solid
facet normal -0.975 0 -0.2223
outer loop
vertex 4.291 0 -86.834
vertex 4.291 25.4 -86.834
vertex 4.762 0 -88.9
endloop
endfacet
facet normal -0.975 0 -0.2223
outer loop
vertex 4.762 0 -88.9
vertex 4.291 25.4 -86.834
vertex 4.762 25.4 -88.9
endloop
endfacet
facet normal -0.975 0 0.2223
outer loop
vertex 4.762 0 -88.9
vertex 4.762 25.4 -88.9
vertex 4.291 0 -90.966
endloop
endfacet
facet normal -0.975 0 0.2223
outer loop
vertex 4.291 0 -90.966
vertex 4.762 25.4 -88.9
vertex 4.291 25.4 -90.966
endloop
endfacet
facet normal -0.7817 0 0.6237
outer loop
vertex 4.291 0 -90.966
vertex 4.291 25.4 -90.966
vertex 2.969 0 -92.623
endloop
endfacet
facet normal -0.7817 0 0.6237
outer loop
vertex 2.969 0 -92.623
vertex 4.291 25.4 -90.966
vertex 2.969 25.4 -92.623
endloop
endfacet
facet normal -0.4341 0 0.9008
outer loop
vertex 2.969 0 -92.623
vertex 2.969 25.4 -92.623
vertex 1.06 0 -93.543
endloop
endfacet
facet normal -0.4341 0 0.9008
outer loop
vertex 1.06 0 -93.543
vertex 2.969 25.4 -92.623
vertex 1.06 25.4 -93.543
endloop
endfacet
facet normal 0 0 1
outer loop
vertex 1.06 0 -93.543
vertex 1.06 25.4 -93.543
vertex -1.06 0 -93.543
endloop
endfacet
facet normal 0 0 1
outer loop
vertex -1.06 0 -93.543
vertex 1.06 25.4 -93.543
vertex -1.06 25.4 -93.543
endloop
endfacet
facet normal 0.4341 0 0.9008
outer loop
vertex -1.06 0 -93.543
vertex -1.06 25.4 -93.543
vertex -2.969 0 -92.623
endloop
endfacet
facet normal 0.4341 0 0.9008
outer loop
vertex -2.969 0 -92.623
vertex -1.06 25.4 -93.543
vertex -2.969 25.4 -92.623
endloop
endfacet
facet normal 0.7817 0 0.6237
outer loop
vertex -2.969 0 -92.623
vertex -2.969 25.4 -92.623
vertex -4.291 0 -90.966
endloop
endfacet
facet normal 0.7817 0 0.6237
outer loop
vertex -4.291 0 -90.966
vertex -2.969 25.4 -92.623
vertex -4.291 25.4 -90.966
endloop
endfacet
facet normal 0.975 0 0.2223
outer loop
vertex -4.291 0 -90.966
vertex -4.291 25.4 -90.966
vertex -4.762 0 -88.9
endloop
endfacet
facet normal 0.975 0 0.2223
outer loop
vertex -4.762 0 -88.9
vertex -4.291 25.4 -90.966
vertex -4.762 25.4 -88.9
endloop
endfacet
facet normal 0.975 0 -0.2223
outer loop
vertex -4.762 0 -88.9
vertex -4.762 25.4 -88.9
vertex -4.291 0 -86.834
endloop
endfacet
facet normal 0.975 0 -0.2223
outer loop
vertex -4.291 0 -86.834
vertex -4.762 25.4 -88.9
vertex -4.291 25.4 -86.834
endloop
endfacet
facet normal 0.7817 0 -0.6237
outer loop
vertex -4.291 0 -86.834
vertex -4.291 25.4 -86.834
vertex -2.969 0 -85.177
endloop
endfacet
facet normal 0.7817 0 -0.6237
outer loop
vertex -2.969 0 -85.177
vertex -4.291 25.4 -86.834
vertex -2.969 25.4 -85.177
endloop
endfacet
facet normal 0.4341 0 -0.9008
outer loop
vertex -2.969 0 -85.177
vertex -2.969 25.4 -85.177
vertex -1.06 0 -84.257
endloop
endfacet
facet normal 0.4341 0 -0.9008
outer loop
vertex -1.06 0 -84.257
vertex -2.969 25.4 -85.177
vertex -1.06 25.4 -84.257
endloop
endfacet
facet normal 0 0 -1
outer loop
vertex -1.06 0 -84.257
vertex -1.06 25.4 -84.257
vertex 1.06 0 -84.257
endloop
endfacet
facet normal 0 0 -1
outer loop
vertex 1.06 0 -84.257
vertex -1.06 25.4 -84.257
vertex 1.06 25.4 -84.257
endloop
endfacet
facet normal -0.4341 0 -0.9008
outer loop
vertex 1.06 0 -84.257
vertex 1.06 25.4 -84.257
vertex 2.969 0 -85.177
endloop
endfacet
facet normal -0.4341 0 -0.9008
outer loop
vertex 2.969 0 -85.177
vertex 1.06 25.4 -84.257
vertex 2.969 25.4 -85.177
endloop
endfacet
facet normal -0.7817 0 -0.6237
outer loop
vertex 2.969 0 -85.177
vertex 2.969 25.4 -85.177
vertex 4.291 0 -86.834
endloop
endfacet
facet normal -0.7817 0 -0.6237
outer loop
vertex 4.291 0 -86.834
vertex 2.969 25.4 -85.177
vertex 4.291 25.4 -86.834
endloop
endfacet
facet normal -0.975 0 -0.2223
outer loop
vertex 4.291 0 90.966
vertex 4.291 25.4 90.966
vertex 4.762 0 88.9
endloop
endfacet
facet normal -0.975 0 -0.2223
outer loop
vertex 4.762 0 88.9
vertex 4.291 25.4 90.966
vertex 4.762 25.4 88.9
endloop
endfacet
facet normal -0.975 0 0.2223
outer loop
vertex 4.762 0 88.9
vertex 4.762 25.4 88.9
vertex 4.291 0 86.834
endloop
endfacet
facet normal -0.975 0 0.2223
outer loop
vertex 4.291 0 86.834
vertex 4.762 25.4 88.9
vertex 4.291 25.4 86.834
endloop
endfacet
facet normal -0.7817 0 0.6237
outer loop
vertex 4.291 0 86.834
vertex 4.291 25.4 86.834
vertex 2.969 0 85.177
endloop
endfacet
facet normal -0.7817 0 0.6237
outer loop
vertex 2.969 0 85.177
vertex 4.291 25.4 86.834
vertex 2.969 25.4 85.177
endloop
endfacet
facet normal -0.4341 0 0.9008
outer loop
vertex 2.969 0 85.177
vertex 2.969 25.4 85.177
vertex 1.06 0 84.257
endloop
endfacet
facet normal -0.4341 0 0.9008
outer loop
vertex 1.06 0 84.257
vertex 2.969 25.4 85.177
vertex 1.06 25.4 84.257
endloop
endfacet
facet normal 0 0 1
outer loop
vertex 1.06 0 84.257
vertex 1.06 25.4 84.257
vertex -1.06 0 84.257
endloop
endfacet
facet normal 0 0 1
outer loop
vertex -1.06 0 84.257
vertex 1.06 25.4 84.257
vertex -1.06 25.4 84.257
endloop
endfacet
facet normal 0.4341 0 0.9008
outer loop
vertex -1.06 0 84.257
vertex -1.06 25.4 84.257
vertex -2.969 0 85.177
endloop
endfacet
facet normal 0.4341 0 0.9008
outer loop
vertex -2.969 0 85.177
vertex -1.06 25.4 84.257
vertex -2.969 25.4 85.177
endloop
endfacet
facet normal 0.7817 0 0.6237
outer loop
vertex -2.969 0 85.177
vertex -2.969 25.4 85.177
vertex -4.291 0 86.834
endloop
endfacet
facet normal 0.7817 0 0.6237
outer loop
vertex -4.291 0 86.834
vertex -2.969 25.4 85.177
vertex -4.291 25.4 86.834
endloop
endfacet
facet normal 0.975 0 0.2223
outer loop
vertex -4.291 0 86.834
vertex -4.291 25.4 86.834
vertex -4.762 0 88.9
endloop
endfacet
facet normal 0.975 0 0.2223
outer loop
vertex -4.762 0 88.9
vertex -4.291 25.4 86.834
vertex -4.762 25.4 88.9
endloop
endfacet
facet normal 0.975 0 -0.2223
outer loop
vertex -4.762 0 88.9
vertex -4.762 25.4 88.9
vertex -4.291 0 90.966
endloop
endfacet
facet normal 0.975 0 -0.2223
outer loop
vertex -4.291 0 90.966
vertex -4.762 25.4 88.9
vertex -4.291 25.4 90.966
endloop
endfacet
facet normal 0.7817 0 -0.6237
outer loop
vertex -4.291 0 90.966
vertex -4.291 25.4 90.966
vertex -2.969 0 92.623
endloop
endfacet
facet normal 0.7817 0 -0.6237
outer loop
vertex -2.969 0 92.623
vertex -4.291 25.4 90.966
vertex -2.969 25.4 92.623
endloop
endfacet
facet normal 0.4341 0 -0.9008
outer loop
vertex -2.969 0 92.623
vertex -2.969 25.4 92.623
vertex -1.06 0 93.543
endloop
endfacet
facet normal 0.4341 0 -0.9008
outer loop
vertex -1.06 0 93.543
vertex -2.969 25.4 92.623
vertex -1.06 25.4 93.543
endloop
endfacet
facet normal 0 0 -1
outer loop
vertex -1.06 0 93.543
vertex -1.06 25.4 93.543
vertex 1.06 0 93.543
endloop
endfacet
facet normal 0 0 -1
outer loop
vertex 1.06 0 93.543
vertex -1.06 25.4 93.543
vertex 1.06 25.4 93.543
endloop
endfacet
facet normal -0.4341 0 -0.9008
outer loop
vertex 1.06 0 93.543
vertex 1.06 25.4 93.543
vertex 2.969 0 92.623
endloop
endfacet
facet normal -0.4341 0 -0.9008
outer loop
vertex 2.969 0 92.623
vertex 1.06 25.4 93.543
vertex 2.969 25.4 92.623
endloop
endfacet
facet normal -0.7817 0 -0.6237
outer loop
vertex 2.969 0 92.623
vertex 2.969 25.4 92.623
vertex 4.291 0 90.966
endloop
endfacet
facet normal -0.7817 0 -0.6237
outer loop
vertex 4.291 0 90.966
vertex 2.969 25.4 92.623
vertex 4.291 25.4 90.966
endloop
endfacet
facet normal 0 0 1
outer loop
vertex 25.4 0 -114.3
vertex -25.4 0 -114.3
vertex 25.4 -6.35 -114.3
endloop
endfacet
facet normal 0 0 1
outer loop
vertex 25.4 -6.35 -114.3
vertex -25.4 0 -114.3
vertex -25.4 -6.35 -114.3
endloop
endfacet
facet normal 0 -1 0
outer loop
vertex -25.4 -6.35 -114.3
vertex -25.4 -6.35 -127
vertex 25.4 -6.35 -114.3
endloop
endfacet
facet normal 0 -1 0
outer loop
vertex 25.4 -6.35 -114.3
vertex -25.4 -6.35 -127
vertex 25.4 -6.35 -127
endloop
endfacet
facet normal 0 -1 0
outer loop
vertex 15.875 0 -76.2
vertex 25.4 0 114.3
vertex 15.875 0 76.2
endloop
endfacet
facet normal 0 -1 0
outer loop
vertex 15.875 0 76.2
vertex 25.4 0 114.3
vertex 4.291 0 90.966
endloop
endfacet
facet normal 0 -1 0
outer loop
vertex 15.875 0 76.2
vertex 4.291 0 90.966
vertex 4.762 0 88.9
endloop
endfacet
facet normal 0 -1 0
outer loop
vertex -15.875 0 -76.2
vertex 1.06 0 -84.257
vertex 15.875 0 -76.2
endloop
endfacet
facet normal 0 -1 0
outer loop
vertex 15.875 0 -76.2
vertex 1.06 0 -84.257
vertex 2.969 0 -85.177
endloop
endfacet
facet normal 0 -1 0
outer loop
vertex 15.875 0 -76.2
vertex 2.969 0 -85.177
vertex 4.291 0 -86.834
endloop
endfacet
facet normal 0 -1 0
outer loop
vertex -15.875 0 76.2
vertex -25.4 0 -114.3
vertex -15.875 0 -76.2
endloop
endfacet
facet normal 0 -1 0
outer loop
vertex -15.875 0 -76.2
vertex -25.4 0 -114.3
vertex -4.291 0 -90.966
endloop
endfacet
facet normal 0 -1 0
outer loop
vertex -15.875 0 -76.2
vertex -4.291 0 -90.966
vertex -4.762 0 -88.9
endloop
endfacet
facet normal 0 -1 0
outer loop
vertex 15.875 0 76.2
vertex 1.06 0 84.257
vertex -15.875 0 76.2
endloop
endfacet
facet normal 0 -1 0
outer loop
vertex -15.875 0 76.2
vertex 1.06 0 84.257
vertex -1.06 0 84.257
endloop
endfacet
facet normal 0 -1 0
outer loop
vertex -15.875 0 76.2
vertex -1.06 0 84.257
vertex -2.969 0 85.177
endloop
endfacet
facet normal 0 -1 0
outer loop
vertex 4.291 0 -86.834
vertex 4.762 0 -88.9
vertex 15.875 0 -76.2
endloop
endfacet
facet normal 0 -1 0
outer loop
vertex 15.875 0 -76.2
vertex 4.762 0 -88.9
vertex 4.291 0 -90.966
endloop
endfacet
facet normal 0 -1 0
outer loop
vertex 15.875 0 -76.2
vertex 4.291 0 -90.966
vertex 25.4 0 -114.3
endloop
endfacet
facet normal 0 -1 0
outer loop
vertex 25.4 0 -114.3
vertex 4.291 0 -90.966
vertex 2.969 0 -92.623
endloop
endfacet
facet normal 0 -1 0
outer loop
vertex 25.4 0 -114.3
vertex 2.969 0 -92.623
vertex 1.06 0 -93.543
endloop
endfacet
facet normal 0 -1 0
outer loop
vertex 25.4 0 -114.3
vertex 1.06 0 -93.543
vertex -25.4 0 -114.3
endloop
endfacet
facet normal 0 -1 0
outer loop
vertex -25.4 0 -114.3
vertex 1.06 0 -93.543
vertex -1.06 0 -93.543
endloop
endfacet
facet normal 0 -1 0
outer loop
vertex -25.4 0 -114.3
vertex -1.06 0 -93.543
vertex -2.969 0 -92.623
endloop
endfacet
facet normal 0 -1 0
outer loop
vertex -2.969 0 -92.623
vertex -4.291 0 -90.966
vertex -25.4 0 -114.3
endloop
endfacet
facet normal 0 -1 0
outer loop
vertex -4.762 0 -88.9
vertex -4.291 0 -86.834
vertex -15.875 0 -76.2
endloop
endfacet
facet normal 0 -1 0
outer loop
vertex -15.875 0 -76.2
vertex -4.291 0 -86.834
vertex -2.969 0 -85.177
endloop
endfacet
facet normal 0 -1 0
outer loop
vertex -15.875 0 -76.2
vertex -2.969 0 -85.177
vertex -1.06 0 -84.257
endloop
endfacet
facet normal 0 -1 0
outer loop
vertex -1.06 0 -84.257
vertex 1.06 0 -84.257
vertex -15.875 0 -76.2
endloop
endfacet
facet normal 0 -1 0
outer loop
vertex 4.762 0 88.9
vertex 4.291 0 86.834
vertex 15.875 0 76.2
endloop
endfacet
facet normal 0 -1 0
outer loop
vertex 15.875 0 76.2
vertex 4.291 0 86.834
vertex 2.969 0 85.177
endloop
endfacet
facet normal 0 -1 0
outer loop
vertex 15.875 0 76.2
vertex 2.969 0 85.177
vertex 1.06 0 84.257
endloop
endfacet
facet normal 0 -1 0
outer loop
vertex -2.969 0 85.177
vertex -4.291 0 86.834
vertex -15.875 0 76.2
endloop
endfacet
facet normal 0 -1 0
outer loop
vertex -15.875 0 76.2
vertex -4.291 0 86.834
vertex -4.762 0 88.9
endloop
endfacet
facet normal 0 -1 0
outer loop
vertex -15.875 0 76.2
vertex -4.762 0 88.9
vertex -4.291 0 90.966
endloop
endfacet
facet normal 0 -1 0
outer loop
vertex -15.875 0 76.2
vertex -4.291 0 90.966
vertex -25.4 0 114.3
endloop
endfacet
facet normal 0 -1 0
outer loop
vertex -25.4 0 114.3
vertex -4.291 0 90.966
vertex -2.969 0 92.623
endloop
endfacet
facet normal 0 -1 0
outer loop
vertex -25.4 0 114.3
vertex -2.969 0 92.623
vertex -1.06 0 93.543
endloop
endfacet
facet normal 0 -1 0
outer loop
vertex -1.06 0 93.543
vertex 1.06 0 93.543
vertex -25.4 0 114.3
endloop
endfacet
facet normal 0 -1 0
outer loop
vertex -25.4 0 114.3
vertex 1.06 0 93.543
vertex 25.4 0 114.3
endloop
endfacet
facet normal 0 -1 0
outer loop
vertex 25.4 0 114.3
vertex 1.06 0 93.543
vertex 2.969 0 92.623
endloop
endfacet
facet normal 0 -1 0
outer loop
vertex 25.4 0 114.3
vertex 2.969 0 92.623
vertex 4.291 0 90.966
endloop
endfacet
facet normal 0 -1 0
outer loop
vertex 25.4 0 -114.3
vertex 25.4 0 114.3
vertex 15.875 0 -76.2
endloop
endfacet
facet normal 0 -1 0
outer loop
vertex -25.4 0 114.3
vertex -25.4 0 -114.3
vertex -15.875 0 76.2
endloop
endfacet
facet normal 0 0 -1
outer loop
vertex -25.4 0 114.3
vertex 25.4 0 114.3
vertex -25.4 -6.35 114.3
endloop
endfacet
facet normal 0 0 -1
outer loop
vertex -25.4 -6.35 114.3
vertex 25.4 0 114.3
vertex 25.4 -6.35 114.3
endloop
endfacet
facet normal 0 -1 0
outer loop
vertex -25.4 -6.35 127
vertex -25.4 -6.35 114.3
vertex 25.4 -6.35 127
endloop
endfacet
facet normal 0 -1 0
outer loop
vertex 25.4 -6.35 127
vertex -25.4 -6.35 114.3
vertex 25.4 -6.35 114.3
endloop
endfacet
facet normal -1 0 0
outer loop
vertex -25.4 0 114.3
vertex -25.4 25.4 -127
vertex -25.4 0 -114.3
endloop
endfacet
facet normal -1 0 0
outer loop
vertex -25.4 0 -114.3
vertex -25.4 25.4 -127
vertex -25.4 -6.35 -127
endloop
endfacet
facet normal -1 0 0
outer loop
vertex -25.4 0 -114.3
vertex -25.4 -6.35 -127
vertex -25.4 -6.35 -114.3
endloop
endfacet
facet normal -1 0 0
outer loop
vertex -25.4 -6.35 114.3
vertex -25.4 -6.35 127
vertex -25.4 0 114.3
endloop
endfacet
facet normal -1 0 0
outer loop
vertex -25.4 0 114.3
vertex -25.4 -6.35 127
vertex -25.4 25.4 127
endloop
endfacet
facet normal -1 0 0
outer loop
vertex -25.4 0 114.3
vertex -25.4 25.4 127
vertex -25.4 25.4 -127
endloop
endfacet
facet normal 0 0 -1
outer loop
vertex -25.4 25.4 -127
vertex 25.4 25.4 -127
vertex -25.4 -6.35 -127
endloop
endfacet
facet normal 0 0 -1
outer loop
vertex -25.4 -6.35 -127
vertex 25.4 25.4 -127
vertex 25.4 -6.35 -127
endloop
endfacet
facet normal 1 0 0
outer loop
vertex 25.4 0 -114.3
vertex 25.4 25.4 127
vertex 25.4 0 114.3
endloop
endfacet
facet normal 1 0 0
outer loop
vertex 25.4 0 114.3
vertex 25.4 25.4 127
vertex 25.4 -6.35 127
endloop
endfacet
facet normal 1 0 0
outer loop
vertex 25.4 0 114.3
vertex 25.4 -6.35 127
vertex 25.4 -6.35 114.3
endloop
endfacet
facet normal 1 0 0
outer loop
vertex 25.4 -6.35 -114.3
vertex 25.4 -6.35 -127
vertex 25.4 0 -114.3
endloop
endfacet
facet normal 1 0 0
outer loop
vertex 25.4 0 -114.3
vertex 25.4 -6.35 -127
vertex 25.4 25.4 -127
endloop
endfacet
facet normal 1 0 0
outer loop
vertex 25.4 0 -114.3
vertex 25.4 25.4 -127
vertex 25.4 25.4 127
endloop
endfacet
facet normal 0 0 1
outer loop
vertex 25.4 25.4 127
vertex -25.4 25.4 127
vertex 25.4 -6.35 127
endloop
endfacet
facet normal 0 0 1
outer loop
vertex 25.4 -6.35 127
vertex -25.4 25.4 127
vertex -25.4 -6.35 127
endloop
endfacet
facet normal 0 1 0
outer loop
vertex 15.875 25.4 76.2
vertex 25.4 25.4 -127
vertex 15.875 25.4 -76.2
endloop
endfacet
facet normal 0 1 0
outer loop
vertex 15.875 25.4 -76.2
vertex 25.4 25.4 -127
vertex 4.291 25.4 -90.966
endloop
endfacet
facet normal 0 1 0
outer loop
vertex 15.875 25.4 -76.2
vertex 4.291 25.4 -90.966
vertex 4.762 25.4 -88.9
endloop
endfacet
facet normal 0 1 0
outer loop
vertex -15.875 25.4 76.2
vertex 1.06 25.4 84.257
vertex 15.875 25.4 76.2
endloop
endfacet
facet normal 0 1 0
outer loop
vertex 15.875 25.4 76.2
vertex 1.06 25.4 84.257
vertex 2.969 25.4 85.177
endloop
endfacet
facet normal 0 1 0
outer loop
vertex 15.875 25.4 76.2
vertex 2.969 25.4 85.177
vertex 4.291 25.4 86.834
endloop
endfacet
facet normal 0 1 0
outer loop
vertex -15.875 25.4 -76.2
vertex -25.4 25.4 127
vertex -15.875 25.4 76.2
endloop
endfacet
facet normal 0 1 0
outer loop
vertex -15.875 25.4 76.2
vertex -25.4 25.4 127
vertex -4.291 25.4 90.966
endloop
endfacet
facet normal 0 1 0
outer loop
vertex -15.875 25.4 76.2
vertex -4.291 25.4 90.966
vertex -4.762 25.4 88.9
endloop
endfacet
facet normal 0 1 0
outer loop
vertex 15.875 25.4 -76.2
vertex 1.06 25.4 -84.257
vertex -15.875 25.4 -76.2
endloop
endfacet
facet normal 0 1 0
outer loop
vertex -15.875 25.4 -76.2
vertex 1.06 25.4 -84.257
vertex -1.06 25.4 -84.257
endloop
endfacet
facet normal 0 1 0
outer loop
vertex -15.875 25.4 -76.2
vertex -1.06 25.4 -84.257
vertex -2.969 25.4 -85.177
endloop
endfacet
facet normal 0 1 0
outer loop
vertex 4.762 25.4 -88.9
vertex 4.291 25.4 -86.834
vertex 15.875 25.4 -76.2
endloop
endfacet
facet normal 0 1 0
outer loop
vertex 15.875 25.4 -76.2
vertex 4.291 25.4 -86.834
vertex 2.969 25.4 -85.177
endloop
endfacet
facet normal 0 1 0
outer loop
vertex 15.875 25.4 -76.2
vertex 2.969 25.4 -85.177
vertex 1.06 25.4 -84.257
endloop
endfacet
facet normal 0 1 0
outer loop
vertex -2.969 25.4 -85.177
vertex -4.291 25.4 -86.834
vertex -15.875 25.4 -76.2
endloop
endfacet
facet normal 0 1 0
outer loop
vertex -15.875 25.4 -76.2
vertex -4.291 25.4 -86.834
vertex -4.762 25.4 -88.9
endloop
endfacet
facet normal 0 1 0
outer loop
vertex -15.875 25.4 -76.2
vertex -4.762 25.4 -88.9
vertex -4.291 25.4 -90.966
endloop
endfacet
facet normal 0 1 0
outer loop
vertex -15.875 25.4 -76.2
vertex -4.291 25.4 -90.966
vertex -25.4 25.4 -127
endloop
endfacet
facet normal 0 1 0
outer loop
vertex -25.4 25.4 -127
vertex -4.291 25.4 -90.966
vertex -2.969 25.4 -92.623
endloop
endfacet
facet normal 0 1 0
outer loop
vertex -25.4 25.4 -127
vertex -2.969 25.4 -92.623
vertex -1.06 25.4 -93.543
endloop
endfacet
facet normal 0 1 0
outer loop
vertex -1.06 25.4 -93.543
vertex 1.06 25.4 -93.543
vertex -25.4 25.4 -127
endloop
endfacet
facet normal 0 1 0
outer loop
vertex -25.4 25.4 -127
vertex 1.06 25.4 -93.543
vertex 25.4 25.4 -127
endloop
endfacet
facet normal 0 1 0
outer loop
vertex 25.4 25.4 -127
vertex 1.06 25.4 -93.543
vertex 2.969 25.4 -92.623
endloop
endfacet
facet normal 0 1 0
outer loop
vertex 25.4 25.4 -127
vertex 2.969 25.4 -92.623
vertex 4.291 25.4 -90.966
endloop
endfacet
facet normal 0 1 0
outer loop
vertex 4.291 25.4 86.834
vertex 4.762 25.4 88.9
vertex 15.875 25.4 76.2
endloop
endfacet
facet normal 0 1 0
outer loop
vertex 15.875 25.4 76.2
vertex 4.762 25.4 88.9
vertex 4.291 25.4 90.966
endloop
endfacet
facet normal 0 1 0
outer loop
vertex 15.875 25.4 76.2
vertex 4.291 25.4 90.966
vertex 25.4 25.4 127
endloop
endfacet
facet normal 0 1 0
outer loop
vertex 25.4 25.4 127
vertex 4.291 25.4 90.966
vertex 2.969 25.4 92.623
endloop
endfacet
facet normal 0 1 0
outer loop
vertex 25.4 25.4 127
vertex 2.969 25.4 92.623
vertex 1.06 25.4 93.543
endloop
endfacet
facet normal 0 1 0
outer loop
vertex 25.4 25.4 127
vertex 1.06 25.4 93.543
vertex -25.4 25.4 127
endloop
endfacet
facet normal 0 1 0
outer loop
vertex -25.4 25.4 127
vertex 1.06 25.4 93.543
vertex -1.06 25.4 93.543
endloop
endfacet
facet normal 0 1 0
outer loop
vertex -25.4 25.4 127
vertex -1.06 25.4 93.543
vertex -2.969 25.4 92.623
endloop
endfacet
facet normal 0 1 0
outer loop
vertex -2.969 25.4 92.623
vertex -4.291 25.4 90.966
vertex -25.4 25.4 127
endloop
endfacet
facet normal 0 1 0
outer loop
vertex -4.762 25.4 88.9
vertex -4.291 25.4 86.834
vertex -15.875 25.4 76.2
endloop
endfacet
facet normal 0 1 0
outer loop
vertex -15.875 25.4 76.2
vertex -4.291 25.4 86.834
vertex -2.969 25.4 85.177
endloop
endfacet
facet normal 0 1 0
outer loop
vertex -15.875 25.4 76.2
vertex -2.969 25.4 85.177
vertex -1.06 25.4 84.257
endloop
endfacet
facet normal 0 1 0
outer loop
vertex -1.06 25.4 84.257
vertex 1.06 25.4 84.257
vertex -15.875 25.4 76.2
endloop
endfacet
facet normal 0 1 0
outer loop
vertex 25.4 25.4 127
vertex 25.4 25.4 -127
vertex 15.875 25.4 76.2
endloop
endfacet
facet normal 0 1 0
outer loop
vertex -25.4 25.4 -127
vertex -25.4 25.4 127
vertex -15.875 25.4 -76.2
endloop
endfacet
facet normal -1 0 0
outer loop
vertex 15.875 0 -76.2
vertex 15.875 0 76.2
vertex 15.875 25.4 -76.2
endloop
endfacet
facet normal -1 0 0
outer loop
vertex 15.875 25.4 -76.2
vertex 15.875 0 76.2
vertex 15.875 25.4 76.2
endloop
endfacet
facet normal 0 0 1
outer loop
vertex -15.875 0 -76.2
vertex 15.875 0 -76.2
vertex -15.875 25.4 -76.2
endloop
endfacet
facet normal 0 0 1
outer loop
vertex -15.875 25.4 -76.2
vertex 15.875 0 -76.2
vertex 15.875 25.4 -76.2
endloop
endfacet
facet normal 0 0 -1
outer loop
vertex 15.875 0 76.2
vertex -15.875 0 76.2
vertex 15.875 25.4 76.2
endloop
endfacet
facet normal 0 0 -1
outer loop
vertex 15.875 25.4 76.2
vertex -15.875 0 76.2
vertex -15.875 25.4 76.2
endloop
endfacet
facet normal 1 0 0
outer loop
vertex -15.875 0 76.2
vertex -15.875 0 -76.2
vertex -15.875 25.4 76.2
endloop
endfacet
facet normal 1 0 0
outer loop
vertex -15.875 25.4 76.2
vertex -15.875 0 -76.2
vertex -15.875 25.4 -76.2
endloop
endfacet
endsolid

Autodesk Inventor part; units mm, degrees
ref_plane "YZ Plane" through (0, 0, 0) normal (1, 0, 0) x (0, 1, 0)
ref_plane "XZ Plane" through (0, 0, 0) normal (0, 1, 0) x (-1, 0, 0)
sketch "Sketch1" plane through (0, 0, 0) normal (0, 1, 0) x (-1, 0, 0)
  line L0 (25.4, 127) -> (-25.4, 127)
  line L1 (-25.4, 127) -> (-25.4, -127)
  line L2 (-25.4, -127) -> (25.4, -127)
  line L3 (25.4, -127) -> (25.4, 127)
  line L4 (25.4, 127) -> (-25.4, -127) construction
  line L5 (-25.4, 127) -> (25.4, -127) construction
  point P0 (0, 0)
  dimension "d0" = 50.8
  dimension "d1" = 254
extrude "Extrusion1" add sketch "Sketch1" along normal blind 25.4
sketch "Sketch2" plane through (0, 0, 0) normal (0, -1, 0) x (1, 0, 0)
  line L0 (-25.4, 127) -> (-25.4, 114.3)
  line L1 (-25.4, 114.3) -> (25.4, 114.3)
  line L2 (25.4, 114.3) -> (25.4, 127)
  line L3 (25.4, 127) -> (-25.4, 127)
  line L4 (-25.4, 127) -> (25.4, 114.3) construction
  line L5 (-25.4, 114.3) -> (25.4, 127) construction
  line L6 (-25.4, 127) -> (25.4, 127) projected
  point P0 (0, 0)
  point P1 (0, 120.65)
  dimension "d4" = 12.7
  dimension "d5" = 25.4
  dimension "d6" = 0
extrude "Extrusion2" add sketch "Sketch2" along normal blind 6.35
mirror "Mirror1" about plane through (0, 0, 0) normal (0, 0, 1) of "Extrusion2"
sketch "Sketch3" plane through (0, 25.4, 0) normal (0, 1, 0) x (1, 0, 0)
  circle A0 centre (0, -88.9) radius 4.7625
  line L0 (-25.4, -127) -> (25.4, -127) projected
  point P0 (0, 0)
  dimension "d9" = 9.525
  dimension "d10" = 38.1
extrude "Extrusion3" cut sketch "Sketch3" against normal through all
mirror "Mirror2" about plane through (0, 0, 0) normal (0, 0, 1) of "Extrusion3"
sketch "Sketch4" plane through (0, 25.4, 0) normal (0, 1, 0) x (1, 0, 0)
  line L0 (-15.875, -76.2) -> (15.875, -76.2)
  line L1 (15.875, -76.2) -> (15.875, 76.2)
  line L2 (15.875, 76.2) -> (-15.875, 76.2)
  line L3 (-15.875, 76.2) -> (-15.875, -76.2)
  line L4 (-15.875, -76.2) -> (15.875, 76.2) construction
  line L5 (15.875, -76.2) -> (-15.875, 76.2) construction
  line L6 (-25.4, 127) -> (-25.4, -127) projected
  line L7 (-25.4, -127) -> (25.4, -127) projected
  point P0 (0, 0)
  dimension "d13" = 9.525
  dimension "d14" = 50.8
extrude "Extrusion4" cut sketch "Sketch4" against normal through all
properties part number "BandSawJigTop" material "LCP Plastic"
